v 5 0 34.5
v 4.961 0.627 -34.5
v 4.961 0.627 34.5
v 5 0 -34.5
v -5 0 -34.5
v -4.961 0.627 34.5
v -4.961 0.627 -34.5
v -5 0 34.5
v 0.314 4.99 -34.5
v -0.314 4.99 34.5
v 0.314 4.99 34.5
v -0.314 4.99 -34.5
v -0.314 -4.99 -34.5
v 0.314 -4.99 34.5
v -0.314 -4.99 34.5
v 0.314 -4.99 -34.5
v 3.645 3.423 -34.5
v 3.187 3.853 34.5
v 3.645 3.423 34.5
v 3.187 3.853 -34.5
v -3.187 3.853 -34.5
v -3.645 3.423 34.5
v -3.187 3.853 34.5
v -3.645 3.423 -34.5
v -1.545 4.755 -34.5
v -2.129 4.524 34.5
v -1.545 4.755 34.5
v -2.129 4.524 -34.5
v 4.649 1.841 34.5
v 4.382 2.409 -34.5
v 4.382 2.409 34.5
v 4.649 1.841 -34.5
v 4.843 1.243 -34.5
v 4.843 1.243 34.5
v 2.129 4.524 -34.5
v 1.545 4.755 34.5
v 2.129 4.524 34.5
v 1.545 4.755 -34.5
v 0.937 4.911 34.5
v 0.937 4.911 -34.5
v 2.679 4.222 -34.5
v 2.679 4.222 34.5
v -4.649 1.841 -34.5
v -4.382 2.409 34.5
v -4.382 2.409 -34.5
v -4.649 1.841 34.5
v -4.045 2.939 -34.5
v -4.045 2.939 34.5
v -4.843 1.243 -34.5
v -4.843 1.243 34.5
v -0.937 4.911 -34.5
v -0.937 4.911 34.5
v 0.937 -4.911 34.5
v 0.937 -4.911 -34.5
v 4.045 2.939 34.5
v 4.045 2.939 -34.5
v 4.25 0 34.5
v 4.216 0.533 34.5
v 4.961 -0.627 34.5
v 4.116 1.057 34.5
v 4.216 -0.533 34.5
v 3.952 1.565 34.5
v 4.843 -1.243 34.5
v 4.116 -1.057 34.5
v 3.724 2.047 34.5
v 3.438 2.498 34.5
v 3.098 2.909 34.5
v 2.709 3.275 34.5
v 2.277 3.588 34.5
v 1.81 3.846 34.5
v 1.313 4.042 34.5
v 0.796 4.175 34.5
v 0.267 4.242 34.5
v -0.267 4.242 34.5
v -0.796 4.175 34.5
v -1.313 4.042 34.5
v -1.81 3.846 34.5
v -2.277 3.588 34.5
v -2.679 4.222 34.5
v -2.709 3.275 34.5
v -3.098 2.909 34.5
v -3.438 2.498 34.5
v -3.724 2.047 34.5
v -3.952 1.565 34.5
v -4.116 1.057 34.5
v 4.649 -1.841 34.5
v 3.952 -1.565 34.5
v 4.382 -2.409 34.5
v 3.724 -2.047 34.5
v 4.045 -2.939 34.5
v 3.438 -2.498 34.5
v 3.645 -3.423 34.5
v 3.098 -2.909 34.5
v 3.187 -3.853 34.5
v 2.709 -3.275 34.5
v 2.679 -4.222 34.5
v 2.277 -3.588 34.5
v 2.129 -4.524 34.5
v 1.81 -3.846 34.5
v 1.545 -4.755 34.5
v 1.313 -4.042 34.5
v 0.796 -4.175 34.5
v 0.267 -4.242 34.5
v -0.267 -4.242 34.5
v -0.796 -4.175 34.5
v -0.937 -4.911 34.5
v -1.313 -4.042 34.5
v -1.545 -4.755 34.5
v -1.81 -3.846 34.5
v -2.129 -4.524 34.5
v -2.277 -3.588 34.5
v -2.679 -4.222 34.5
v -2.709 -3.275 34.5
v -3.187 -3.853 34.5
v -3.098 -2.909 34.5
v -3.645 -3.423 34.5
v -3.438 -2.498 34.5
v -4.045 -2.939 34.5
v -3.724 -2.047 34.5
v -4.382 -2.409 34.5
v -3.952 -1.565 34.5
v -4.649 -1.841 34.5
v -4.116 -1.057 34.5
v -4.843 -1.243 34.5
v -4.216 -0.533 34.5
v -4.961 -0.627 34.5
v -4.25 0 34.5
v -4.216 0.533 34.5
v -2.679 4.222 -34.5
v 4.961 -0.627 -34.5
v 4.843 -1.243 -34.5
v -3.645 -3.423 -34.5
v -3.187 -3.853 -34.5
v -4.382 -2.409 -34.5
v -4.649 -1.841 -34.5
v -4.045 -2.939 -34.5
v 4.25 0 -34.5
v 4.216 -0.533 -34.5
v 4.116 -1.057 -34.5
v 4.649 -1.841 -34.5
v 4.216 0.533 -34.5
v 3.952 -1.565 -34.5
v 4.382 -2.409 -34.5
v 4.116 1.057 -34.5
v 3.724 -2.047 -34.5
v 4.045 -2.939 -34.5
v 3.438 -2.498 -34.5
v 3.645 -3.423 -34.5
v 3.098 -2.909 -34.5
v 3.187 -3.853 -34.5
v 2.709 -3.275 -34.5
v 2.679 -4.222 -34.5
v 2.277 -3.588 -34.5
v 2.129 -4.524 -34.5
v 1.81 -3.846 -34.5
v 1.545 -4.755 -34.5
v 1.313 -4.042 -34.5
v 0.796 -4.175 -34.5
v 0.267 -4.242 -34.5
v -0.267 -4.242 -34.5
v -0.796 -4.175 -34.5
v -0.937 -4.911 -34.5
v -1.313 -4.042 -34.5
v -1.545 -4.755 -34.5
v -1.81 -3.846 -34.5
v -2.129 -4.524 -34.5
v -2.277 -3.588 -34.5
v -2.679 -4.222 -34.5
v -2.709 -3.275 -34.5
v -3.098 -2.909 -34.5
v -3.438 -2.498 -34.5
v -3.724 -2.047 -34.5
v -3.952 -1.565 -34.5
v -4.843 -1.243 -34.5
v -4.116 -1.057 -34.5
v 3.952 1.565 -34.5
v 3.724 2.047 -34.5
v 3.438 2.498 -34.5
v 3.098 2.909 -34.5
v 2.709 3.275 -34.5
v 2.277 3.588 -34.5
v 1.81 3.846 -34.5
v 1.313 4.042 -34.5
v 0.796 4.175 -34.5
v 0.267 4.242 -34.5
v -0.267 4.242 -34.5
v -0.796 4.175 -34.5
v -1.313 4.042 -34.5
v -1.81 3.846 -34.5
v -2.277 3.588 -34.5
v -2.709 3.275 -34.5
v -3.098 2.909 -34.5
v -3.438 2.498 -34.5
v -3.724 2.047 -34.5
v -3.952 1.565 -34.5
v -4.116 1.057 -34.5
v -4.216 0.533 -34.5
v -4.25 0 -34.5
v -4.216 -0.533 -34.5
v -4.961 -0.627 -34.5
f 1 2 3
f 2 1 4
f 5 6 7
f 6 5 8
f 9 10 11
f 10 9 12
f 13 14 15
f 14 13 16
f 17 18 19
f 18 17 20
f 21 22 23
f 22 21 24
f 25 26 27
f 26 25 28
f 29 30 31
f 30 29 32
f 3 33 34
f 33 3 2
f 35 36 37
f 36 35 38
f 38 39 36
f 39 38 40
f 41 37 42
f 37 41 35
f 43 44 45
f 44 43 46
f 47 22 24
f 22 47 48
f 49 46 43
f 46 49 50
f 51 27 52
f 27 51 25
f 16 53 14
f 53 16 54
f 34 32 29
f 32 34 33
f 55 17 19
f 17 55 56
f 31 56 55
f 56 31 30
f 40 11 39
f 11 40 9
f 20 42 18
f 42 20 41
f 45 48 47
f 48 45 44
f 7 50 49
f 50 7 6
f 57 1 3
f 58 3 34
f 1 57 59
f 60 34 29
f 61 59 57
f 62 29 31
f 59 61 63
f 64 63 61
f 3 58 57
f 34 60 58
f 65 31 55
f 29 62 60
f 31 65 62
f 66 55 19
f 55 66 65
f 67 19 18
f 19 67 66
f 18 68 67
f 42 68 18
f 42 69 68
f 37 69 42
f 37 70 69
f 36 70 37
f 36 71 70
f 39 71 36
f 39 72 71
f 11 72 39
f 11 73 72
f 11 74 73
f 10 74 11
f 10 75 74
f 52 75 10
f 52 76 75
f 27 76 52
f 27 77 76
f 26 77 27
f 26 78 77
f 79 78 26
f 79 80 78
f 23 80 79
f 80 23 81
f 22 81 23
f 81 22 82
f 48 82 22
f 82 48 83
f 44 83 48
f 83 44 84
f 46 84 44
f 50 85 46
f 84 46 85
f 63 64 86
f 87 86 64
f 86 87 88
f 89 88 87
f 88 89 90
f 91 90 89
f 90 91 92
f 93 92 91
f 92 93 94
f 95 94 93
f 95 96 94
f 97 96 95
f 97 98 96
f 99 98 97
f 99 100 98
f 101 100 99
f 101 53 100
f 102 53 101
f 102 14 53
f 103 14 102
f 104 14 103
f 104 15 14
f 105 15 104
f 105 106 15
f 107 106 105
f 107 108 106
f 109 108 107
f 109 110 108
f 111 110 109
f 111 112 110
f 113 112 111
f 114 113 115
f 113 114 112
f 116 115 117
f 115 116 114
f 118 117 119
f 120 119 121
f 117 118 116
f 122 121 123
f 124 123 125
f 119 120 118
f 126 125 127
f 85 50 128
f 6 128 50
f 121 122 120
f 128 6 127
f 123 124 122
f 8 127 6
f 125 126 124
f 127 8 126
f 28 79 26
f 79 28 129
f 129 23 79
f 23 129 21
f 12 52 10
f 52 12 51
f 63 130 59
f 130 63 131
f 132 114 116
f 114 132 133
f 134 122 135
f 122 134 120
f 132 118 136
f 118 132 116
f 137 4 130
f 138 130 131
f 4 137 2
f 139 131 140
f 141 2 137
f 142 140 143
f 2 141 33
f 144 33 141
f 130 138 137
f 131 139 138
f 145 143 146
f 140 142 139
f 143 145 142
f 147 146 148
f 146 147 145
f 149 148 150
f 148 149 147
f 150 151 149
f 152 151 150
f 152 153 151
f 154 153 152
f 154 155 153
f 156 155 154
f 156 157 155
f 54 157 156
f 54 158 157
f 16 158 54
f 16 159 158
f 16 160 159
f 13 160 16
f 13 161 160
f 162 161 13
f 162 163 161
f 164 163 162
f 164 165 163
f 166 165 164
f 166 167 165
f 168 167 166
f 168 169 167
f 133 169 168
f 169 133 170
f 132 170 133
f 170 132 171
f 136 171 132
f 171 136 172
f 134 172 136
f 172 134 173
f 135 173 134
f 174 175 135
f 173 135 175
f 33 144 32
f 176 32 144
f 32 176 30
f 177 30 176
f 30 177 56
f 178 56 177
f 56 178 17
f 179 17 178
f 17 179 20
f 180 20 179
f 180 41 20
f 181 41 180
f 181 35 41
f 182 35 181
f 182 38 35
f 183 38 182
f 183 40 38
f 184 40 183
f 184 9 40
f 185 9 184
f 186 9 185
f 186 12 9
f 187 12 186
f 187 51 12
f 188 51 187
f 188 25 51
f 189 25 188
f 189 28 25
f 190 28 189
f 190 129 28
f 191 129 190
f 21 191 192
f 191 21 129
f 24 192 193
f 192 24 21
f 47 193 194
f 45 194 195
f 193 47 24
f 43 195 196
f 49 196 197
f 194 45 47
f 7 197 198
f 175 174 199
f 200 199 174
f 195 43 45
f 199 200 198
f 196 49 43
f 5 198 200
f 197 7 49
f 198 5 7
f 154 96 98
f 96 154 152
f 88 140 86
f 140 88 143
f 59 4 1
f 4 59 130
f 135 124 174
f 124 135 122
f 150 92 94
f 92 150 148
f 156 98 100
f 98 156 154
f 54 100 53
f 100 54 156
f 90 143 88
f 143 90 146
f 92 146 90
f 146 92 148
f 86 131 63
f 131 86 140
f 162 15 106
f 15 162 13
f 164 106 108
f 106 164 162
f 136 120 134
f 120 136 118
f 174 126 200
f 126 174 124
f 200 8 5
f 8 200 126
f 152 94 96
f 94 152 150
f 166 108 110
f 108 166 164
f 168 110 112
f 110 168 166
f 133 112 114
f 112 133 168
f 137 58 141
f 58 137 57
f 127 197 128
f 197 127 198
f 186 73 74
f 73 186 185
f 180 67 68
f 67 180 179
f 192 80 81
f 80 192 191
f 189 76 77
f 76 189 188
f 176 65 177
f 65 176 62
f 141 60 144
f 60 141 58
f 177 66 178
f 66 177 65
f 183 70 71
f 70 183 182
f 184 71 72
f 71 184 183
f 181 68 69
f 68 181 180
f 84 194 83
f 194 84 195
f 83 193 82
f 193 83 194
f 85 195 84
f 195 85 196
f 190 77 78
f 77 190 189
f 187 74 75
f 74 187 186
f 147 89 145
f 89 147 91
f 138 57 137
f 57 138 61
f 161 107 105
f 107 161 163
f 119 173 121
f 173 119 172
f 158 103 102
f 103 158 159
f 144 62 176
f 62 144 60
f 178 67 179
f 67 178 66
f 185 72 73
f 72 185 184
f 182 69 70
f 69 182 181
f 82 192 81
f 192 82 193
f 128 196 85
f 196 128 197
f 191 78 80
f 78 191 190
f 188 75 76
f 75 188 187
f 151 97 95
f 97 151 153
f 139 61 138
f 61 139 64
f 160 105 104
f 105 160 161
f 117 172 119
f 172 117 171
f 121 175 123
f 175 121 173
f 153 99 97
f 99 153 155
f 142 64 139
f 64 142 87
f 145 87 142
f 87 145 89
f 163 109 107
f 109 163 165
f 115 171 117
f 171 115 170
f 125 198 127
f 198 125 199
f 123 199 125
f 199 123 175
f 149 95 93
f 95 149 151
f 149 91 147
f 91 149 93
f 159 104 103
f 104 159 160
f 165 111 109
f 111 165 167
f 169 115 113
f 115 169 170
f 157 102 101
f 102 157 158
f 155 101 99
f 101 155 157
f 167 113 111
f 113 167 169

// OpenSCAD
$fn = 50;


difference() {
	union() {
		translate(v = [0, 0, -34.5000000000]) {
			cylinder(h = 69, r = 5.0000000000);
		}
	}
	union() {
		translate(v = [0, 0, -100.0000000000]) {
			cylinder(h = 200, r = 4.2500000000);
		}
	}
}
